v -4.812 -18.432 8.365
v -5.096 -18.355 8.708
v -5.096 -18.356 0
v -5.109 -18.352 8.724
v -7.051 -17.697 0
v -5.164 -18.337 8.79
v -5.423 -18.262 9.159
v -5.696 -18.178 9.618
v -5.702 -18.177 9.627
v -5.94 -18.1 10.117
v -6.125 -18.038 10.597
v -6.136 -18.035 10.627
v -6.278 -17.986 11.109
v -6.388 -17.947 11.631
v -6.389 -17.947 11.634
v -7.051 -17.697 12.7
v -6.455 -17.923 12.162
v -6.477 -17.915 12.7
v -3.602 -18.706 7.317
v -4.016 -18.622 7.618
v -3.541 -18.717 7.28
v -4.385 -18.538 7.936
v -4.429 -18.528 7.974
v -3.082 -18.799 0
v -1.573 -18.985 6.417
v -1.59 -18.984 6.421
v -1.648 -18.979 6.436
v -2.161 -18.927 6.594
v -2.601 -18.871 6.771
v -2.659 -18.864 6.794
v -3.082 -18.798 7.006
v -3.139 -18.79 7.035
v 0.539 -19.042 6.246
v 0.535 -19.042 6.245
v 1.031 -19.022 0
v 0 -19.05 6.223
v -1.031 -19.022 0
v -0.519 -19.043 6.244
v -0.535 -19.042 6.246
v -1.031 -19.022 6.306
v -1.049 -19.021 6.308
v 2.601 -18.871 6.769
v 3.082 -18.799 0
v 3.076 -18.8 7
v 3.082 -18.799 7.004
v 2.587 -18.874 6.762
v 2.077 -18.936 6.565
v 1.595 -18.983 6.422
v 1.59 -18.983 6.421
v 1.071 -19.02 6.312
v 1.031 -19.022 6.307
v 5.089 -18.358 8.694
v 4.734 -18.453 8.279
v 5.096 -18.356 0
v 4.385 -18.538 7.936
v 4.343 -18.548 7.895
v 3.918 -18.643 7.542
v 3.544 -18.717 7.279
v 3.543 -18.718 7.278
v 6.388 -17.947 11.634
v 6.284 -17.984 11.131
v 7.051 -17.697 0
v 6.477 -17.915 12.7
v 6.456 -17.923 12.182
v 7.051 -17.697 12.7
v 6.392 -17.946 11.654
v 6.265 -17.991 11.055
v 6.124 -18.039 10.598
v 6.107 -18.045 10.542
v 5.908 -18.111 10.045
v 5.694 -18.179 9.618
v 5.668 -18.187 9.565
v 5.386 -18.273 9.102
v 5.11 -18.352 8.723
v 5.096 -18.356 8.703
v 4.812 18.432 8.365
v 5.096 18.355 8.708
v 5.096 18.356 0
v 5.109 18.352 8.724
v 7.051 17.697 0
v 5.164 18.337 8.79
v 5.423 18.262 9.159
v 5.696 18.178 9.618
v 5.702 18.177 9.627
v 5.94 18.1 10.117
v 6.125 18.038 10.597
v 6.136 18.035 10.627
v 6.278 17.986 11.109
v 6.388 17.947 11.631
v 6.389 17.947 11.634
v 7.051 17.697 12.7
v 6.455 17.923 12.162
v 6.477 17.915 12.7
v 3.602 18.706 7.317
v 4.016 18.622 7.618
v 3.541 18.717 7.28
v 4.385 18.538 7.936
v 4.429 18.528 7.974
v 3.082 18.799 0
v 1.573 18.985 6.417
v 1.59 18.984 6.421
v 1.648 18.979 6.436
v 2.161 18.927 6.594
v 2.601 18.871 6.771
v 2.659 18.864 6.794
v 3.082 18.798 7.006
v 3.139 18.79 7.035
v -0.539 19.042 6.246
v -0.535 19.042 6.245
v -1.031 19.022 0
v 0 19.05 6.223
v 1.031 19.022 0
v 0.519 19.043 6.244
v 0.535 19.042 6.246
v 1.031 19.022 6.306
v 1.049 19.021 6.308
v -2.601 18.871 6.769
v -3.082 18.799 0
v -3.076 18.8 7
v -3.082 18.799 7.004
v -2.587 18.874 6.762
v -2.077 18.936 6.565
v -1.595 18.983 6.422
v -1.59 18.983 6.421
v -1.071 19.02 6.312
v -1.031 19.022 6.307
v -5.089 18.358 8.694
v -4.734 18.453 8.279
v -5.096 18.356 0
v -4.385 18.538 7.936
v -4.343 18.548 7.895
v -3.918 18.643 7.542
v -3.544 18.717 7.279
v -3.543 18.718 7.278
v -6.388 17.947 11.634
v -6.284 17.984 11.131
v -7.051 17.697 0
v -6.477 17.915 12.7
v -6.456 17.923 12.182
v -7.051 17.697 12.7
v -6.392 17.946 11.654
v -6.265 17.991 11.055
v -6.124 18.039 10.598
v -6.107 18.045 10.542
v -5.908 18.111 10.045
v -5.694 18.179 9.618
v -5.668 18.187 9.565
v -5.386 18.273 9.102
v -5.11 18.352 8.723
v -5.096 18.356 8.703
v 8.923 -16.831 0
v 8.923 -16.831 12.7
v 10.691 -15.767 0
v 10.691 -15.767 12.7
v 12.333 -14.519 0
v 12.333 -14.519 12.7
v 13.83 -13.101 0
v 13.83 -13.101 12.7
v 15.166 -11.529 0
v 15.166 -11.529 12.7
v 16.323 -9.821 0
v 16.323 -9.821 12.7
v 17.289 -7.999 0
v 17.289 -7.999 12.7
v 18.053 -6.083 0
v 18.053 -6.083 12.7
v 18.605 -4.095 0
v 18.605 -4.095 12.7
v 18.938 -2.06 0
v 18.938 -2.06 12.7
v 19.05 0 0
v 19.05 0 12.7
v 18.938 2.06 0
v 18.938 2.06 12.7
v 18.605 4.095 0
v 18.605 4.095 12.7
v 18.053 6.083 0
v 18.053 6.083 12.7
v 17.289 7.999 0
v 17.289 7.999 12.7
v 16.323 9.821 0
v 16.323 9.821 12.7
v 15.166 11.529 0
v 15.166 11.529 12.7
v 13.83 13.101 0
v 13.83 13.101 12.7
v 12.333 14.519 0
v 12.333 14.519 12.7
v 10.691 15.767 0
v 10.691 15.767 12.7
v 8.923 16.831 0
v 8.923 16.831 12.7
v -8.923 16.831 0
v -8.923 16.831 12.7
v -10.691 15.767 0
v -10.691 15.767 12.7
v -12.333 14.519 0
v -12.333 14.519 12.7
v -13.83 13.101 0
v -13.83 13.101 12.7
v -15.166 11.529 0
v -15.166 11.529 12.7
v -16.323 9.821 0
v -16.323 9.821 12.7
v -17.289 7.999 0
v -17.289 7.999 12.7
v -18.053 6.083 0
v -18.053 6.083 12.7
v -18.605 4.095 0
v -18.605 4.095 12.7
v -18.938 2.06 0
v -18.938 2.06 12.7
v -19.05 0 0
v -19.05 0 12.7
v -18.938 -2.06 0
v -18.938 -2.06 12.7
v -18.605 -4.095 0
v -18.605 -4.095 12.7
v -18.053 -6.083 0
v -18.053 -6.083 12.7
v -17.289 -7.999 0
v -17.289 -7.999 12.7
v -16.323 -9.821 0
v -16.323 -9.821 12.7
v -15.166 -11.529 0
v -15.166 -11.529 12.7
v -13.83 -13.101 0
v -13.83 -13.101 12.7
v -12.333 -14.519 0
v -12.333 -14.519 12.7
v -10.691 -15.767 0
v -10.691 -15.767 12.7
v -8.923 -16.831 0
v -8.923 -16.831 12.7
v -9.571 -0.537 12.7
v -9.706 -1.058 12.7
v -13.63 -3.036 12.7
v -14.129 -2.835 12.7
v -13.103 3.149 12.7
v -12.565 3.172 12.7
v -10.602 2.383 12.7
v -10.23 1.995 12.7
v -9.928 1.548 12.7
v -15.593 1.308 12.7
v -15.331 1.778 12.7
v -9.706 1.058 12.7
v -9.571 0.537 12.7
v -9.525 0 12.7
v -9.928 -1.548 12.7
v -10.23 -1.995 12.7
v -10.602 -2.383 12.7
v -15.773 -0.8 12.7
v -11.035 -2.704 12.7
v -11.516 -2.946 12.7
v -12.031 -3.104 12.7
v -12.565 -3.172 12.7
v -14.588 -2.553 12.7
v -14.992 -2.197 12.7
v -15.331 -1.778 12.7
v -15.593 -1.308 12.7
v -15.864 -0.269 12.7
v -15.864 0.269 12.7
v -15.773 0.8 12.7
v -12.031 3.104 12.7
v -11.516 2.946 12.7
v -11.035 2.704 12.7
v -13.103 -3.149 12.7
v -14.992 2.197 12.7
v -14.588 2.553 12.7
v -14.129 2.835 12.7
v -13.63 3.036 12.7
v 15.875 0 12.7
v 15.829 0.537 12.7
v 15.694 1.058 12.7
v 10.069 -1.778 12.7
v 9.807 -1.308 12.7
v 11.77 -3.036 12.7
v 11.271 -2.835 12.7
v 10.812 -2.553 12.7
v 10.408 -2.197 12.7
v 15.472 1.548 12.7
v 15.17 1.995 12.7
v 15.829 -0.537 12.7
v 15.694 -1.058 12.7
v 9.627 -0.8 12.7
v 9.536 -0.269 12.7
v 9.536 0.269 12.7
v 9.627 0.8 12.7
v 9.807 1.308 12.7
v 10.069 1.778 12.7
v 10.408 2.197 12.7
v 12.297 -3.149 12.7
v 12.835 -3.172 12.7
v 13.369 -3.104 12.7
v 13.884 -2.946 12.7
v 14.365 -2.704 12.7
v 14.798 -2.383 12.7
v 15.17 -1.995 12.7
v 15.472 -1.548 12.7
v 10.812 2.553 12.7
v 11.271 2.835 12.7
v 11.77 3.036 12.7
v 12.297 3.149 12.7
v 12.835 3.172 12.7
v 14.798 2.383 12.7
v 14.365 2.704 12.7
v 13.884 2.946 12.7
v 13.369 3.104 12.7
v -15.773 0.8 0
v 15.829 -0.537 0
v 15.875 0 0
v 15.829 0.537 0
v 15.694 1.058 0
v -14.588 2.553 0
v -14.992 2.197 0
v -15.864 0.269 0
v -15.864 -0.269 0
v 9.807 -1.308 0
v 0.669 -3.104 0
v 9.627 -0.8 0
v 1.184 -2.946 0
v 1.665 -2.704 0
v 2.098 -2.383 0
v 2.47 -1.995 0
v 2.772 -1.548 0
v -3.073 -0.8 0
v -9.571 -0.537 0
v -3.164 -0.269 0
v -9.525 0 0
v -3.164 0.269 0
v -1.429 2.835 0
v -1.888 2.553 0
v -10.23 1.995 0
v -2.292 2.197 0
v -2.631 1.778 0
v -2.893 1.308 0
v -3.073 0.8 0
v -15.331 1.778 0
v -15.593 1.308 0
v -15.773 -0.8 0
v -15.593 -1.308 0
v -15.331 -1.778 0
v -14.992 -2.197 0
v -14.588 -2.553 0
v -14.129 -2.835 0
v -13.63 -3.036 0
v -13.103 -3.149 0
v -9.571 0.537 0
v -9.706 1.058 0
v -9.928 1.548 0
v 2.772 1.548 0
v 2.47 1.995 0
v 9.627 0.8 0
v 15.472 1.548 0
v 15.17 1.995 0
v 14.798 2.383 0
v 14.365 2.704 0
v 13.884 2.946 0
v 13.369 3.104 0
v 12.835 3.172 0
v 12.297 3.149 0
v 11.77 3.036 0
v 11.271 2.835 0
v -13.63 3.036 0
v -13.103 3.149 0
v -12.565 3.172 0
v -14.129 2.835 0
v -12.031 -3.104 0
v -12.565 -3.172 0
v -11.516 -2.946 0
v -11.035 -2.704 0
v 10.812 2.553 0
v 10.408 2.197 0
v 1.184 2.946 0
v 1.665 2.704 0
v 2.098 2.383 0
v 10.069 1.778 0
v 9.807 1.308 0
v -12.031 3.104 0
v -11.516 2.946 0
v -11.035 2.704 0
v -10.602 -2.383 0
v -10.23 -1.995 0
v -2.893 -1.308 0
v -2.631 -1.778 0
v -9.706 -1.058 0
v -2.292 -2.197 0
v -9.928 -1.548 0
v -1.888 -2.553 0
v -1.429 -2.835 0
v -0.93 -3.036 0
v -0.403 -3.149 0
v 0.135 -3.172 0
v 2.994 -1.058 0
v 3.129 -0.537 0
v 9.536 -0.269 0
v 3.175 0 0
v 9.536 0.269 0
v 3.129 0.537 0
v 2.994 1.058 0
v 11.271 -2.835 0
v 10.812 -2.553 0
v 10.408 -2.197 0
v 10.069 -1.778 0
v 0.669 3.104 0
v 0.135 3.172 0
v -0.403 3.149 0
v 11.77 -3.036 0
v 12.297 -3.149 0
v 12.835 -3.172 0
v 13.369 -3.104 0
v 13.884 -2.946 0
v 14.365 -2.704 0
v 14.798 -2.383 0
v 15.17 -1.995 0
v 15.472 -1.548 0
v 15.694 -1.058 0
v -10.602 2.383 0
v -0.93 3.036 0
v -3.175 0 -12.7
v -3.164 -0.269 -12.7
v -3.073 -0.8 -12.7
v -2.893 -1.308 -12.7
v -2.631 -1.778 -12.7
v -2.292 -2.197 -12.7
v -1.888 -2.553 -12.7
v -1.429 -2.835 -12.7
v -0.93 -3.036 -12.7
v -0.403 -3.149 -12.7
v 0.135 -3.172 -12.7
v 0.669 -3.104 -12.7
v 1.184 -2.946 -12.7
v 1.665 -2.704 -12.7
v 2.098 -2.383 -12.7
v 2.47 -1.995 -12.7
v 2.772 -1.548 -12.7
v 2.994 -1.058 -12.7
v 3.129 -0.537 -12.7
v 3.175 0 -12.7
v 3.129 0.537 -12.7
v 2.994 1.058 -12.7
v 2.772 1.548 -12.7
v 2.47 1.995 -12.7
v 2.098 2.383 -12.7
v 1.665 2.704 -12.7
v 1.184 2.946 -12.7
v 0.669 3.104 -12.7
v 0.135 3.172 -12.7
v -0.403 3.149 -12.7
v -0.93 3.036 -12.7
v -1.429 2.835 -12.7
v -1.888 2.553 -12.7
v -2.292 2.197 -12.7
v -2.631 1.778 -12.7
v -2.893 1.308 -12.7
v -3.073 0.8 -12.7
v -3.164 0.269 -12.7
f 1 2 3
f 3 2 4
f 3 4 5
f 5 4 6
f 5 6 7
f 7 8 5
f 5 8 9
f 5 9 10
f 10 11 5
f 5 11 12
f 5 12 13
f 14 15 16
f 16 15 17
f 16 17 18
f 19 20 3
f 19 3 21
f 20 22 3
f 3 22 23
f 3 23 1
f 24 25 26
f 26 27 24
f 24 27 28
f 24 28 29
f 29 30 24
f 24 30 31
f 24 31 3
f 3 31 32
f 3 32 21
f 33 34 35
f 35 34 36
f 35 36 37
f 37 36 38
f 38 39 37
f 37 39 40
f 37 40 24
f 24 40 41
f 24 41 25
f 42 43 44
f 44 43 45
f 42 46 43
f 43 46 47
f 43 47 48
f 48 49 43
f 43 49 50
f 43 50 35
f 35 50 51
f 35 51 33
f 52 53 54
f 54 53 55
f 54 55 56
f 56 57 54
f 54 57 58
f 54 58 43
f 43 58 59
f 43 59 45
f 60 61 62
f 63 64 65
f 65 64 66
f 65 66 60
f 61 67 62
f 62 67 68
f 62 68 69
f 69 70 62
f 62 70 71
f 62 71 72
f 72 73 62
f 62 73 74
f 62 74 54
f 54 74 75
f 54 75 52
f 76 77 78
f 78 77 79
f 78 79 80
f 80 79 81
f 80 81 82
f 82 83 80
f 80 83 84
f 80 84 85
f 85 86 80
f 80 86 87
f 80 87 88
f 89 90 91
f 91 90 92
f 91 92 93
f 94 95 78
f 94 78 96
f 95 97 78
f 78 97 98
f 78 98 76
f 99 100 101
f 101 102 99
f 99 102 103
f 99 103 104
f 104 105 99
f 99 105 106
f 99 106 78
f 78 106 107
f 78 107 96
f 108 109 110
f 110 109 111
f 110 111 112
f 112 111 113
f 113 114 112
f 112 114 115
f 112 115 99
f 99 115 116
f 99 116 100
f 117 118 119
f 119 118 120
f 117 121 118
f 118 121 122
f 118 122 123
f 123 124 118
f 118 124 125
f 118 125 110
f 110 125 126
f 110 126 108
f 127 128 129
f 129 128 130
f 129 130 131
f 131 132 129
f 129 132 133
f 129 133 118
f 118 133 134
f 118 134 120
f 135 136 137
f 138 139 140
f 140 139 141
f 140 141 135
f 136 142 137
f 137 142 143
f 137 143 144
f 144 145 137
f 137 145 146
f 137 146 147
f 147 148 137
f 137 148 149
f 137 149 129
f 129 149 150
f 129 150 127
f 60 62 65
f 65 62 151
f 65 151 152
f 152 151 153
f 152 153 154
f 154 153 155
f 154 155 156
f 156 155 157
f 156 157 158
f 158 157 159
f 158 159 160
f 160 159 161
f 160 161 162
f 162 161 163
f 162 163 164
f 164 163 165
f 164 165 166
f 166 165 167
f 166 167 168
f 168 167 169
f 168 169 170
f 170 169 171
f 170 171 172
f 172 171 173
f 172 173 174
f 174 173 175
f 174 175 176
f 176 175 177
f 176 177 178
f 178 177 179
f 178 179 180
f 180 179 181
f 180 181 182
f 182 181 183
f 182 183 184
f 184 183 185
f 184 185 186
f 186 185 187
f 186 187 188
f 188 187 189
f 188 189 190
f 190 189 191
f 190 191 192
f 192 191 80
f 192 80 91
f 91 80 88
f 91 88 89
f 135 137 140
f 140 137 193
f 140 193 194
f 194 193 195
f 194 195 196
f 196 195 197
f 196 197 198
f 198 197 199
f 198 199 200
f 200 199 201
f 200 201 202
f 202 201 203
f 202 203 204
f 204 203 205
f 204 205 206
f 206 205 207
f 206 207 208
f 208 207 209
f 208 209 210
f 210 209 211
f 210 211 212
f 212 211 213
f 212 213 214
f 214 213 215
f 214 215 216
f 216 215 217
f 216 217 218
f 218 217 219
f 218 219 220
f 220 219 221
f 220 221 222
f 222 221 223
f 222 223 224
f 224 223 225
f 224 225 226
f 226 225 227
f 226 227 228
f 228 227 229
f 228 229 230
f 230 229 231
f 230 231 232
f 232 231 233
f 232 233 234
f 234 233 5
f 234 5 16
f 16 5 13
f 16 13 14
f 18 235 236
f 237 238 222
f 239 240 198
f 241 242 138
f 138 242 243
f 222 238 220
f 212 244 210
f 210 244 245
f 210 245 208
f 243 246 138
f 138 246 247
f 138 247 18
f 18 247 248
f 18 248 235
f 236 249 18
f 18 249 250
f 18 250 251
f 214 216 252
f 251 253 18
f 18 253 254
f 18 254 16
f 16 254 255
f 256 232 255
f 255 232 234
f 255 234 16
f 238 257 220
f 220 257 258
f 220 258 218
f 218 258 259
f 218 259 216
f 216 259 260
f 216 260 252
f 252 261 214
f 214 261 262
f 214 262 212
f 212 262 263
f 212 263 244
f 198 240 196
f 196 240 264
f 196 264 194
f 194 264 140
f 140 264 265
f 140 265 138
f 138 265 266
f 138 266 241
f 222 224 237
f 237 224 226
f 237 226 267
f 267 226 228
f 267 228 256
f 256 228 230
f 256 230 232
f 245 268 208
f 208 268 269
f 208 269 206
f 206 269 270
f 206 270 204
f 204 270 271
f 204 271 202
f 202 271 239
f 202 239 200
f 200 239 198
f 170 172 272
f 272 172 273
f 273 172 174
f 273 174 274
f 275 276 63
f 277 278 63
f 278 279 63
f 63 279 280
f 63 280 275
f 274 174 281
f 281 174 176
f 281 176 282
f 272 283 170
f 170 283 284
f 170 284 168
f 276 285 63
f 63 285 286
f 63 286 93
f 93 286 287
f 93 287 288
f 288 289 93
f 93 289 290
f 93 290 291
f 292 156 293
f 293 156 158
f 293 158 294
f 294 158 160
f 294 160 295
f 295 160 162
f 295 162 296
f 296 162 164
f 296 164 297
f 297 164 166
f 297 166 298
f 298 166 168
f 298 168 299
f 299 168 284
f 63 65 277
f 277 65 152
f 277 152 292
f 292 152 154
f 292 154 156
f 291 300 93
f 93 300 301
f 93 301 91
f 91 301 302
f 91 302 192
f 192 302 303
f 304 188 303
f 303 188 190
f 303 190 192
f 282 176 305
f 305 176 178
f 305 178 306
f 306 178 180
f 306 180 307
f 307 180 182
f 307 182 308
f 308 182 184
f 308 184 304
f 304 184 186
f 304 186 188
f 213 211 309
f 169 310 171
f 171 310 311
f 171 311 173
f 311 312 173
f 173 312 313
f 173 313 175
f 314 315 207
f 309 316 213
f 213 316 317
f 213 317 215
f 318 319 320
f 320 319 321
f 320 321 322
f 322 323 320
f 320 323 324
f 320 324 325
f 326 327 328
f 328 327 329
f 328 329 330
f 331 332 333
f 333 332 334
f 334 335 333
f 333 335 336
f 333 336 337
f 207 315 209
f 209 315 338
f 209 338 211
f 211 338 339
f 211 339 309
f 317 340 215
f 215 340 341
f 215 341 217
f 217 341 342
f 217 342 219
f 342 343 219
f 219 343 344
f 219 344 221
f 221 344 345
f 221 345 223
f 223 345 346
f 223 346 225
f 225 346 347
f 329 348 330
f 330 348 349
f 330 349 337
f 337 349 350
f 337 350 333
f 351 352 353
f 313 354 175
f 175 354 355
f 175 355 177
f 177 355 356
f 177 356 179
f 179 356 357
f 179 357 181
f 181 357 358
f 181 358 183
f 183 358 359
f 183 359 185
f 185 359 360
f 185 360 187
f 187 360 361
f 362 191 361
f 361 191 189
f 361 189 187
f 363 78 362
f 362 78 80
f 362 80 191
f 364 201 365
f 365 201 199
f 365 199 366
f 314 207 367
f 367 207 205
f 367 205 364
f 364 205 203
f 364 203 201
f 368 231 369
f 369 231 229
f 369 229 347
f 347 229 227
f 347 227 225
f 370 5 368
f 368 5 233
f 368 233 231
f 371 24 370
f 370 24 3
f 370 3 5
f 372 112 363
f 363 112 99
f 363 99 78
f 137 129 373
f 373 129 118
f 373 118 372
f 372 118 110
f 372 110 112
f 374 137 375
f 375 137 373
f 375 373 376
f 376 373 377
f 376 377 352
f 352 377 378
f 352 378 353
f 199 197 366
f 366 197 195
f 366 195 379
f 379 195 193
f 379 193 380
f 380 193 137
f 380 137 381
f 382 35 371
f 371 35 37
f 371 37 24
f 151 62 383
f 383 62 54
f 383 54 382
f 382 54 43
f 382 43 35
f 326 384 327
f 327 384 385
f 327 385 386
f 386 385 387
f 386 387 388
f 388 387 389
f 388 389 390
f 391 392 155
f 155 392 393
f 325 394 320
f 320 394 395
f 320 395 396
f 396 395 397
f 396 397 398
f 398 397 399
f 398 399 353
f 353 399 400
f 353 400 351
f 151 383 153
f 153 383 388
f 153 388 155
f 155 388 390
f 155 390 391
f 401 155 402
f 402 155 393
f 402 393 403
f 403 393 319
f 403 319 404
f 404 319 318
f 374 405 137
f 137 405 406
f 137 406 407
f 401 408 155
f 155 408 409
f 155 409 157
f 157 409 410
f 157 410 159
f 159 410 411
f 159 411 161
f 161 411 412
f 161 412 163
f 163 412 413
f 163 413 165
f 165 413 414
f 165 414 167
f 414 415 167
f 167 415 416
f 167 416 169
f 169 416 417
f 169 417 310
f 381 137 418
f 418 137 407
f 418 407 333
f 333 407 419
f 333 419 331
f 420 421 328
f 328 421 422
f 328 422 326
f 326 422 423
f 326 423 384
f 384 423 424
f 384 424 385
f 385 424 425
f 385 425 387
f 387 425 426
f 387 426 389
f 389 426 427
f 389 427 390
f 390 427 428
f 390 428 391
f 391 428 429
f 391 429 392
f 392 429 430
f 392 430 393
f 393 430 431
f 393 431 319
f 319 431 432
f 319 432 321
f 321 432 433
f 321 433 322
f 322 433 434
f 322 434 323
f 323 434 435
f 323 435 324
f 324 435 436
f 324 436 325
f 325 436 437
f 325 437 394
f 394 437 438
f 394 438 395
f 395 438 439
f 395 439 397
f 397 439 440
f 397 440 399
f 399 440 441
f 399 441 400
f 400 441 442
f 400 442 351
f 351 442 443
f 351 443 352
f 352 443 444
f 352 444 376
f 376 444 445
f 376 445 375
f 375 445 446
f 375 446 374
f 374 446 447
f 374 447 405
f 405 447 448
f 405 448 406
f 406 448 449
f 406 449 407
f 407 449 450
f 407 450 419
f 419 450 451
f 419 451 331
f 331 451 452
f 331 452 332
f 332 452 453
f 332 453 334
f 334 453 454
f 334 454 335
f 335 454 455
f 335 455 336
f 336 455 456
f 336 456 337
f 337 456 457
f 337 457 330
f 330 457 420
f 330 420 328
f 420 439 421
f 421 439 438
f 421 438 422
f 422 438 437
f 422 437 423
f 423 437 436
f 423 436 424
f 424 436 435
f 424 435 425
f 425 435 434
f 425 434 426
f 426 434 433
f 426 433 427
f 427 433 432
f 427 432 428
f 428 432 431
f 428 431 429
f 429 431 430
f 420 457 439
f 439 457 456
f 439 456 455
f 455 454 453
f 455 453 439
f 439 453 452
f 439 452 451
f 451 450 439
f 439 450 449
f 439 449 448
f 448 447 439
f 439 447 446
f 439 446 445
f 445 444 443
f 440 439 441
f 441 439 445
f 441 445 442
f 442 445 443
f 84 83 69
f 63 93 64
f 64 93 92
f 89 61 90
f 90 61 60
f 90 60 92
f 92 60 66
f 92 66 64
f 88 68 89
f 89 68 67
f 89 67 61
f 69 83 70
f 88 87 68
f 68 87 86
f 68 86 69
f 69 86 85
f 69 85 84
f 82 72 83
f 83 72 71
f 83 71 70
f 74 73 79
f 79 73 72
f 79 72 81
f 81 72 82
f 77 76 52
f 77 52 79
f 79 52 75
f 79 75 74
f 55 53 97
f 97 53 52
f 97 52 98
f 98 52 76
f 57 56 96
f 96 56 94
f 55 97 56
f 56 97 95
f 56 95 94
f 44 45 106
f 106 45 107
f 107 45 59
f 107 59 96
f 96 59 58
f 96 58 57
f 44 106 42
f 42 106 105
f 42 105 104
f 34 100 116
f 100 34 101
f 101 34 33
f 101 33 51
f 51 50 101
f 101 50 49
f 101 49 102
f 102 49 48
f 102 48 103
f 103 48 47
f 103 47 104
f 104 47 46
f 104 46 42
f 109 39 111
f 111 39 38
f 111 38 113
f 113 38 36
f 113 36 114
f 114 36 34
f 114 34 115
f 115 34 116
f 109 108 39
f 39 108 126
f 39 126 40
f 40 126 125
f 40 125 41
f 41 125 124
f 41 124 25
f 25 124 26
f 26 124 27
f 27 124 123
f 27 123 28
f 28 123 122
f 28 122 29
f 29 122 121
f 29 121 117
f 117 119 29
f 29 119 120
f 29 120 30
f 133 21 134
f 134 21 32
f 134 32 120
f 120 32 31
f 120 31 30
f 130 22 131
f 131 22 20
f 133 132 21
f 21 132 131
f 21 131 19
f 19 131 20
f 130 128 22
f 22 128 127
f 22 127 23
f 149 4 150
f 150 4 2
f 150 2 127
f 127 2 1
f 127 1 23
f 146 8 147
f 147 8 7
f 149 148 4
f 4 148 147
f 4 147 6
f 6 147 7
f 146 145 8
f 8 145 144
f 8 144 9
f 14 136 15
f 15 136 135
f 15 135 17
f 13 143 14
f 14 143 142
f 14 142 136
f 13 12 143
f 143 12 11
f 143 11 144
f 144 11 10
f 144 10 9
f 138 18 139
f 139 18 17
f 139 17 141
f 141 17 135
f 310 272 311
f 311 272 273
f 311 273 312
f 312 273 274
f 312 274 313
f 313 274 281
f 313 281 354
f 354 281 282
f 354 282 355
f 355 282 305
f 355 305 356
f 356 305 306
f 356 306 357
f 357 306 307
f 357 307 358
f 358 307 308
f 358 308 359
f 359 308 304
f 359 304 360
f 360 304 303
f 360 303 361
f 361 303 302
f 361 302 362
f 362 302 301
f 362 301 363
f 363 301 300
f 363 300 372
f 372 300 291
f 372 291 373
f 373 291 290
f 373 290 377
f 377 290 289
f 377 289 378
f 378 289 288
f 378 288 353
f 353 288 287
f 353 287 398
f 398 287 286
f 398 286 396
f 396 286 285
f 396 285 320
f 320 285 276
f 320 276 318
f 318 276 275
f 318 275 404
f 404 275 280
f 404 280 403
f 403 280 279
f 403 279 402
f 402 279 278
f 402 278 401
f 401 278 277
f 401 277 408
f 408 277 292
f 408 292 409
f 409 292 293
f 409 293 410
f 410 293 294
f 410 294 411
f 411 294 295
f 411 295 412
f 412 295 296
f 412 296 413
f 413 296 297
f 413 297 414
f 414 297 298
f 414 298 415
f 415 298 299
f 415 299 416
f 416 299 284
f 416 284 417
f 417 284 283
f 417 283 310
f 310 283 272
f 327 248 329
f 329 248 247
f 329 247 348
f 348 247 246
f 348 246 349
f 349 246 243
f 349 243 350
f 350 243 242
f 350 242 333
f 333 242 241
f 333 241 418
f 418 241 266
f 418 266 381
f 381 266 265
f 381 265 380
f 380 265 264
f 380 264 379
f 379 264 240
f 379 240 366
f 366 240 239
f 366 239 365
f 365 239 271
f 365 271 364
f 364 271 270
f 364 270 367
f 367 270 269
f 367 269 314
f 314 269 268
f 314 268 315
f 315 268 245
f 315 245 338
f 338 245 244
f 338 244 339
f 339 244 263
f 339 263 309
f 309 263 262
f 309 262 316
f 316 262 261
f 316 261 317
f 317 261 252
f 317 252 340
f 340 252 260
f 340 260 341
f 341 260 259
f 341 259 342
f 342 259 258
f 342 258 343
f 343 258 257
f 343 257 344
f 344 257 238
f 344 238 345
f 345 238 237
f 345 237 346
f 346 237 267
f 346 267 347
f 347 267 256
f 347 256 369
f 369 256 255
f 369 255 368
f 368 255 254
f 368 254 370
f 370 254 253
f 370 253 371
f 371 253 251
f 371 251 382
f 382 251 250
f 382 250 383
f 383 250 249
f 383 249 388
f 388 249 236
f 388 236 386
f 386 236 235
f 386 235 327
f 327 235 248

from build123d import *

# Parameters (mm, degrees)
SKETCH1_R               = 19.05
BOSS_EXTRUDE1_DEPTH     = 12.7
SKETCH2_R               = 3.175
BOSS_EXTRUDE2_DEPTH     = 12.7
CUT_EXTRUDE1_DEPTH      = 30.784140075
CUT_EXTRUDE1_DEPTH_BACK = 30.784140075
SKETCH4_R               = 6.477
SKETCH5_R               = 3.175
CUT_EXTRUDE2_DEPTH      = 73.66


with BuildPart() as part:
    # Sketch1 → Boss-Extrude1 (new body)
    with BuildSketch(Plane.XY):
        Circle(SKETCH1_R)
    extrude(amount=BOSS_EXTRUDE1_DEPTH)

    # Sketch2 → Boss-Extrude2 (add)
    with BuildSketch(Plane(origin=(0, 0, 0), x_dir=(-1, 0, 0), z_dir=(0, 0, -1))):
        with Locations(Location((0, 0, 0), (0, 0, 180))):
            Circle(SKETCH2_R)
    extrude(amount=BOSS_EXTRUDE2_DEPTH)

    # Sketch4 → Cut-Extrude1 (cut, two sides: drawn at the far end of the back side and taken through both)
    with BuildSketch(Plane(origin=(0, 0, 0), x_dir=(1, 0, 0), z_dir=(0, 1, 0)).offset(-CUT_EXTRUDE1_DEPTH_BACK)):
        with Locations((0, -12.7)):
            Circle(SKETCH4_R)
    extrude(amount=CUT_EXTRUDE1_DEPTH + CUT_EXTRUDE1_DEPTH_BACK, mode=Mode.SUBTRACT)

    # Sketch5 → Cut-Extrude2 (cut)
    with BuildSketch(Plane.XY.offset(12.7)):
        with Locations((12.7, 0)):
            Circle(SKETCH5_R)
        with Locations((-12.7, 0)):
            Circle(SKETCH5_R)
    extrude(amount=-CUT_EXTRUDE2_DEPTH, mode=Mode.SUBTRACT)


solid = part.part
